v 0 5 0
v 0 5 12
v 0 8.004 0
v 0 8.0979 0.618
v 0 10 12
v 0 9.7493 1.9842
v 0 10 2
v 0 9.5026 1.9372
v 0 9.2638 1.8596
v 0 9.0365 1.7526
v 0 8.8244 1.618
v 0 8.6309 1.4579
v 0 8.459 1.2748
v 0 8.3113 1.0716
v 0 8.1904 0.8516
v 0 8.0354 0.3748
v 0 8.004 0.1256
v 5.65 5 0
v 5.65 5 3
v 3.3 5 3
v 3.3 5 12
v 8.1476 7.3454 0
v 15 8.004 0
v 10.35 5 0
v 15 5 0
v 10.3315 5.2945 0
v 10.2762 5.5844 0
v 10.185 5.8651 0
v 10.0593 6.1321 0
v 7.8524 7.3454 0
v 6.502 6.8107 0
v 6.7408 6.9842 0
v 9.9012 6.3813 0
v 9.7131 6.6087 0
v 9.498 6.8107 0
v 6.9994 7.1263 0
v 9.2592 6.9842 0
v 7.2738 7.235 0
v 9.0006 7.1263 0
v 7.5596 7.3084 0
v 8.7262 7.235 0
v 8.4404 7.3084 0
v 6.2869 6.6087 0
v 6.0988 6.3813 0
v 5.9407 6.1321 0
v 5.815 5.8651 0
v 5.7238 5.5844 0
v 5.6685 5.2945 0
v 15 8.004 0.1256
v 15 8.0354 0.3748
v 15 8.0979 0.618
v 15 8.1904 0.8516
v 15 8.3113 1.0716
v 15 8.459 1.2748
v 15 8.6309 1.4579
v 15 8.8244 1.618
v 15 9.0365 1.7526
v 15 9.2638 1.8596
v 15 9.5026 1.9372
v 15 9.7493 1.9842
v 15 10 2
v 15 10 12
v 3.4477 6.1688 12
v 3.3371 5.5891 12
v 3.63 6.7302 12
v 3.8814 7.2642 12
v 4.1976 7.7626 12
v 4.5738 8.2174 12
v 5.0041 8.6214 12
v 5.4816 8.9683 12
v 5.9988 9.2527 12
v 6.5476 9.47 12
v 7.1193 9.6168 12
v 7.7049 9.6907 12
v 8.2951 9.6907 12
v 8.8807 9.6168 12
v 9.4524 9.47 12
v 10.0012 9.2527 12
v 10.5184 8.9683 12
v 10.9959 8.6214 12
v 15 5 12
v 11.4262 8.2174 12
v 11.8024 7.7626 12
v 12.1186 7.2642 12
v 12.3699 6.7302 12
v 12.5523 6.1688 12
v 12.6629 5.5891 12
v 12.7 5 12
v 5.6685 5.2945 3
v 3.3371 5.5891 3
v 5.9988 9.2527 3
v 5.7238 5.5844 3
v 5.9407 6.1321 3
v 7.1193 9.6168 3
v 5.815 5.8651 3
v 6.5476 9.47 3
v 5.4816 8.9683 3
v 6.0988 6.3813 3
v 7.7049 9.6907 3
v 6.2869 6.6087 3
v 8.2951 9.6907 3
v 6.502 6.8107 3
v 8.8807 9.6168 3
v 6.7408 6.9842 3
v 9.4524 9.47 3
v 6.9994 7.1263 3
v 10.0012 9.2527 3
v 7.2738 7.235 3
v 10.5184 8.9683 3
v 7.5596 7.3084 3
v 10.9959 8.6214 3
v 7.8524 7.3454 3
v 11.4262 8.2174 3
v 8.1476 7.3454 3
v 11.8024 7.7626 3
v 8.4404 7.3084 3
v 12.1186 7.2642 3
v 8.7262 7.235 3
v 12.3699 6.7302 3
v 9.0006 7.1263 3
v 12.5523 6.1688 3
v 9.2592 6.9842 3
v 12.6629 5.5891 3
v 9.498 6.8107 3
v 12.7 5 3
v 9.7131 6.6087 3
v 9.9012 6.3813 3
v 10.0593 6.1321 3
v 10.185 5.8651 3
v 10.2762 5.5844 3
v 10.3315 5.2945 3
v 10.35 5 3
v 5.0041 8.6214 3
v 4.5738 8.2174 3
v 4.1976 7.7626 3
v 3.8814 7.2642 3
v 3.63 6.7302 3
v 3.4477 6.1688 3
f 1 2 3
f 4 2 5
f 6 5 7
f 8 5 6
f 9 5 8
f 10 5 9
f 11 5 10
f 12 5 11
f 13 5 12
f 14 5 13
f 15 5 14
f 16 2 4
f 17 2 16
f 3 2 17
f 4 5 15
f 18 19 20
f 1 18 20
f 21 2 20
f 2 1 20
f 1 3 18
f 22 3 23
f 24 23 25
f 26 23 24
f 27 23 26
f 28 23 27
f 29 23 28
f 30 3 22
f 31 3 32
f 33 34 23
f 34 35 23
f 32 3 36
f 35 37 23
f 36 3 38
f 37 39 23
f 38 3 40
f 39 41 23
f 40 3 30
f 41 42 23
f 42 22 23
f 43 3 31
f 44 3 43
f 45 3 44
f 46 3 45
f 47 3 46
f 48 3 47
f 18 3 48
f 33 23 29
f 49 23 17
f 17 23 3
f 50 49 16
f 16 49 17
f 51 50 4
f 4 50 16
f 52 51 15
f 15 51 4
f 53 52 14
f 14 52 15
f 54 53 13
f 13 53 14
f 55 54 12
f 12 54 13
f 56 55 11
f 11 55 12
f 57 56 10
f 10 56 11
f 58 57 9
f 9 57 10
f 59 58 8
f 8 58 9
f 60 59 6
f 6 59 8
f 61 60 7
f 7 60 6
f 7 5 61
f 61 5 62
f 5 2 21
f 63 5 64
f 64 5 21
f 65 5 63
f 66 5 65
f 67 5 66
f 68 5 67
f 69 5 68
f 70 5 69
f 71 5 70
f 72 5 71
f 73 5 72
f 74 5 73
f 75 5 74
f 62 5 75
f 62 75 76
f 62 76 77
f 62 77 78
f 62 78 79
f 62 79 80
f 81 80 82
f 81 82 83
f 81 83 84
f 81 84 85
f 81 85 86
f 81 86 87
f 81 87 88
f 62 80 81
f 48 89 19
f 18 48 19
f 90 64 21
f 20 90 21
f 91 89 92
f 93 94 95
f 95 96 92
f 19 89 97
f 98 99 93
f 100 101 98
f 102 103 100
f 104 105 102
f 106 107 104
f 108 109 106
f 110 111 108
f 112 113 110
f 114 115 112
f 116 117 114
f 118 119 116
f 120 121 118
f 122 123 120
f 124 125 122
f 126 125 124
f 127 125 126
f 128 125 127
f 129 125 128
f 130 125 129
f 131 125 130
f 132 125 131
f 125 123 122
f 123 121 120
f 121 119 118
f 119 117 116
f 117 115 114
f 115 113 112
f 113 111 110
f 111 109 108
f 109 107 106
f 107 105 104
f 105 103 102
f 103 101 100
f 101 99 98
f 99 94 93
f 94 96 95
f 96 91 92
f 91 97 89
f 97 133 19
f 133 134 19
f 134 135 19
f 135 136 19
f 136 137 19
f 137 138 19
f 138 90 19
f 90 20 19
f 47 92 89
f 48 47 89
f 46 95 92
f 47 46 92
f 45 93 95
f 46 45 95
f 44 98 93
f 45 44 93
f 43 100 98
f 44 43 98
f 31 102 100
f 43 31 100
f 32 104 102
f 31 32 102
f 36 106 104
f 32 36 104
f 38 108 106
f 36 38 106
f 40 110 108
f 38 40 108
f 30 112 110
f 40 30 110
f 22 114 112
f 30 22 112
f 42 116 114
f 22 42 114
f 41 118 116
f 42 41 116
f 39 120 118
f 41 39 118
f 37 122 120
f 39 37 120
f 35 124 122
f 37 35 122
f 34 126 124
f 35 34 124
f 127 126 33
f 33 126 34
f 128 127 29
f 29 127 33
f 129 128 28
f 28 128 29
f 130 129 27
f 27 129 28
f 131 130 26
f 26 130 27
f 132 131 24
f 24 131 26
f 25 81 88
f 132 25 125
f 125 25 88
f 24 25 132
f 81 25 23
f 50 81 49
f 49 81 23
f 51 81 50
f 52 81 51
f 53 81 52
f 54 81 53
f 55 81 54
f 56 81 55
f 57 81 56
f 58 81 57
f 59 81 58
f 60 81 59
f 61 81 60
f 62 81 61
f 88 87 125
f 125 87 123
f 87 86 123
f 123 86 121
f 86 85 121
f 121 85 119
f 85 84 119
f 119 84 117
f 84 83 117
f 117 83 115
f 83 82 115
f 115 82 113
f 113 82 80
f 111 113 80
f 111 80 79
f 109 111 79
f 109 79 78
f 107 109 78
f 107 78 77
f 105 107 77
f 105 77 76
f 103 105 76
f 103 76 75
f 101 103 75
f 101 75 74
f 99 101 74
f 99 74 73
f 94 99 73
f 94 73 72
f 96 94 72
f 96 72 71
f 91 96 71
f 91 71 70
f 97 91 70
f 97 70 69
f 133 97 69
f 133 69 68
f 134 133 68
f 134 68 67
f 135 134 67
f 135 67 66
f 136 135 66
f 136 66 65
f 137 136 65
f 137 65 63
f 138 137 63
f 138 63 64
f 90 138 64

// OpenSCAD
b = 10;
l = 15;
h = 12;
ra = 4.7;
d = 3;
ri = 2.35;
lpl = 8;
rc = 2;
$fn=50;
bcut = 5;

difference(){
	cube([l,b,h]);
	translate([lpl,b/2,-1]) cylinder(r=ri,h=h+2);
	translate([lpl,b/2,d]) cylinder(r=ra,h=h+2);
	translate([-1,b,0])rotate([0,90,0])#cylinder(r=rc,h=l+2);
	translate([-1,-2-bcut,-1]) cube([l+2,b+2,h+2]);
}
